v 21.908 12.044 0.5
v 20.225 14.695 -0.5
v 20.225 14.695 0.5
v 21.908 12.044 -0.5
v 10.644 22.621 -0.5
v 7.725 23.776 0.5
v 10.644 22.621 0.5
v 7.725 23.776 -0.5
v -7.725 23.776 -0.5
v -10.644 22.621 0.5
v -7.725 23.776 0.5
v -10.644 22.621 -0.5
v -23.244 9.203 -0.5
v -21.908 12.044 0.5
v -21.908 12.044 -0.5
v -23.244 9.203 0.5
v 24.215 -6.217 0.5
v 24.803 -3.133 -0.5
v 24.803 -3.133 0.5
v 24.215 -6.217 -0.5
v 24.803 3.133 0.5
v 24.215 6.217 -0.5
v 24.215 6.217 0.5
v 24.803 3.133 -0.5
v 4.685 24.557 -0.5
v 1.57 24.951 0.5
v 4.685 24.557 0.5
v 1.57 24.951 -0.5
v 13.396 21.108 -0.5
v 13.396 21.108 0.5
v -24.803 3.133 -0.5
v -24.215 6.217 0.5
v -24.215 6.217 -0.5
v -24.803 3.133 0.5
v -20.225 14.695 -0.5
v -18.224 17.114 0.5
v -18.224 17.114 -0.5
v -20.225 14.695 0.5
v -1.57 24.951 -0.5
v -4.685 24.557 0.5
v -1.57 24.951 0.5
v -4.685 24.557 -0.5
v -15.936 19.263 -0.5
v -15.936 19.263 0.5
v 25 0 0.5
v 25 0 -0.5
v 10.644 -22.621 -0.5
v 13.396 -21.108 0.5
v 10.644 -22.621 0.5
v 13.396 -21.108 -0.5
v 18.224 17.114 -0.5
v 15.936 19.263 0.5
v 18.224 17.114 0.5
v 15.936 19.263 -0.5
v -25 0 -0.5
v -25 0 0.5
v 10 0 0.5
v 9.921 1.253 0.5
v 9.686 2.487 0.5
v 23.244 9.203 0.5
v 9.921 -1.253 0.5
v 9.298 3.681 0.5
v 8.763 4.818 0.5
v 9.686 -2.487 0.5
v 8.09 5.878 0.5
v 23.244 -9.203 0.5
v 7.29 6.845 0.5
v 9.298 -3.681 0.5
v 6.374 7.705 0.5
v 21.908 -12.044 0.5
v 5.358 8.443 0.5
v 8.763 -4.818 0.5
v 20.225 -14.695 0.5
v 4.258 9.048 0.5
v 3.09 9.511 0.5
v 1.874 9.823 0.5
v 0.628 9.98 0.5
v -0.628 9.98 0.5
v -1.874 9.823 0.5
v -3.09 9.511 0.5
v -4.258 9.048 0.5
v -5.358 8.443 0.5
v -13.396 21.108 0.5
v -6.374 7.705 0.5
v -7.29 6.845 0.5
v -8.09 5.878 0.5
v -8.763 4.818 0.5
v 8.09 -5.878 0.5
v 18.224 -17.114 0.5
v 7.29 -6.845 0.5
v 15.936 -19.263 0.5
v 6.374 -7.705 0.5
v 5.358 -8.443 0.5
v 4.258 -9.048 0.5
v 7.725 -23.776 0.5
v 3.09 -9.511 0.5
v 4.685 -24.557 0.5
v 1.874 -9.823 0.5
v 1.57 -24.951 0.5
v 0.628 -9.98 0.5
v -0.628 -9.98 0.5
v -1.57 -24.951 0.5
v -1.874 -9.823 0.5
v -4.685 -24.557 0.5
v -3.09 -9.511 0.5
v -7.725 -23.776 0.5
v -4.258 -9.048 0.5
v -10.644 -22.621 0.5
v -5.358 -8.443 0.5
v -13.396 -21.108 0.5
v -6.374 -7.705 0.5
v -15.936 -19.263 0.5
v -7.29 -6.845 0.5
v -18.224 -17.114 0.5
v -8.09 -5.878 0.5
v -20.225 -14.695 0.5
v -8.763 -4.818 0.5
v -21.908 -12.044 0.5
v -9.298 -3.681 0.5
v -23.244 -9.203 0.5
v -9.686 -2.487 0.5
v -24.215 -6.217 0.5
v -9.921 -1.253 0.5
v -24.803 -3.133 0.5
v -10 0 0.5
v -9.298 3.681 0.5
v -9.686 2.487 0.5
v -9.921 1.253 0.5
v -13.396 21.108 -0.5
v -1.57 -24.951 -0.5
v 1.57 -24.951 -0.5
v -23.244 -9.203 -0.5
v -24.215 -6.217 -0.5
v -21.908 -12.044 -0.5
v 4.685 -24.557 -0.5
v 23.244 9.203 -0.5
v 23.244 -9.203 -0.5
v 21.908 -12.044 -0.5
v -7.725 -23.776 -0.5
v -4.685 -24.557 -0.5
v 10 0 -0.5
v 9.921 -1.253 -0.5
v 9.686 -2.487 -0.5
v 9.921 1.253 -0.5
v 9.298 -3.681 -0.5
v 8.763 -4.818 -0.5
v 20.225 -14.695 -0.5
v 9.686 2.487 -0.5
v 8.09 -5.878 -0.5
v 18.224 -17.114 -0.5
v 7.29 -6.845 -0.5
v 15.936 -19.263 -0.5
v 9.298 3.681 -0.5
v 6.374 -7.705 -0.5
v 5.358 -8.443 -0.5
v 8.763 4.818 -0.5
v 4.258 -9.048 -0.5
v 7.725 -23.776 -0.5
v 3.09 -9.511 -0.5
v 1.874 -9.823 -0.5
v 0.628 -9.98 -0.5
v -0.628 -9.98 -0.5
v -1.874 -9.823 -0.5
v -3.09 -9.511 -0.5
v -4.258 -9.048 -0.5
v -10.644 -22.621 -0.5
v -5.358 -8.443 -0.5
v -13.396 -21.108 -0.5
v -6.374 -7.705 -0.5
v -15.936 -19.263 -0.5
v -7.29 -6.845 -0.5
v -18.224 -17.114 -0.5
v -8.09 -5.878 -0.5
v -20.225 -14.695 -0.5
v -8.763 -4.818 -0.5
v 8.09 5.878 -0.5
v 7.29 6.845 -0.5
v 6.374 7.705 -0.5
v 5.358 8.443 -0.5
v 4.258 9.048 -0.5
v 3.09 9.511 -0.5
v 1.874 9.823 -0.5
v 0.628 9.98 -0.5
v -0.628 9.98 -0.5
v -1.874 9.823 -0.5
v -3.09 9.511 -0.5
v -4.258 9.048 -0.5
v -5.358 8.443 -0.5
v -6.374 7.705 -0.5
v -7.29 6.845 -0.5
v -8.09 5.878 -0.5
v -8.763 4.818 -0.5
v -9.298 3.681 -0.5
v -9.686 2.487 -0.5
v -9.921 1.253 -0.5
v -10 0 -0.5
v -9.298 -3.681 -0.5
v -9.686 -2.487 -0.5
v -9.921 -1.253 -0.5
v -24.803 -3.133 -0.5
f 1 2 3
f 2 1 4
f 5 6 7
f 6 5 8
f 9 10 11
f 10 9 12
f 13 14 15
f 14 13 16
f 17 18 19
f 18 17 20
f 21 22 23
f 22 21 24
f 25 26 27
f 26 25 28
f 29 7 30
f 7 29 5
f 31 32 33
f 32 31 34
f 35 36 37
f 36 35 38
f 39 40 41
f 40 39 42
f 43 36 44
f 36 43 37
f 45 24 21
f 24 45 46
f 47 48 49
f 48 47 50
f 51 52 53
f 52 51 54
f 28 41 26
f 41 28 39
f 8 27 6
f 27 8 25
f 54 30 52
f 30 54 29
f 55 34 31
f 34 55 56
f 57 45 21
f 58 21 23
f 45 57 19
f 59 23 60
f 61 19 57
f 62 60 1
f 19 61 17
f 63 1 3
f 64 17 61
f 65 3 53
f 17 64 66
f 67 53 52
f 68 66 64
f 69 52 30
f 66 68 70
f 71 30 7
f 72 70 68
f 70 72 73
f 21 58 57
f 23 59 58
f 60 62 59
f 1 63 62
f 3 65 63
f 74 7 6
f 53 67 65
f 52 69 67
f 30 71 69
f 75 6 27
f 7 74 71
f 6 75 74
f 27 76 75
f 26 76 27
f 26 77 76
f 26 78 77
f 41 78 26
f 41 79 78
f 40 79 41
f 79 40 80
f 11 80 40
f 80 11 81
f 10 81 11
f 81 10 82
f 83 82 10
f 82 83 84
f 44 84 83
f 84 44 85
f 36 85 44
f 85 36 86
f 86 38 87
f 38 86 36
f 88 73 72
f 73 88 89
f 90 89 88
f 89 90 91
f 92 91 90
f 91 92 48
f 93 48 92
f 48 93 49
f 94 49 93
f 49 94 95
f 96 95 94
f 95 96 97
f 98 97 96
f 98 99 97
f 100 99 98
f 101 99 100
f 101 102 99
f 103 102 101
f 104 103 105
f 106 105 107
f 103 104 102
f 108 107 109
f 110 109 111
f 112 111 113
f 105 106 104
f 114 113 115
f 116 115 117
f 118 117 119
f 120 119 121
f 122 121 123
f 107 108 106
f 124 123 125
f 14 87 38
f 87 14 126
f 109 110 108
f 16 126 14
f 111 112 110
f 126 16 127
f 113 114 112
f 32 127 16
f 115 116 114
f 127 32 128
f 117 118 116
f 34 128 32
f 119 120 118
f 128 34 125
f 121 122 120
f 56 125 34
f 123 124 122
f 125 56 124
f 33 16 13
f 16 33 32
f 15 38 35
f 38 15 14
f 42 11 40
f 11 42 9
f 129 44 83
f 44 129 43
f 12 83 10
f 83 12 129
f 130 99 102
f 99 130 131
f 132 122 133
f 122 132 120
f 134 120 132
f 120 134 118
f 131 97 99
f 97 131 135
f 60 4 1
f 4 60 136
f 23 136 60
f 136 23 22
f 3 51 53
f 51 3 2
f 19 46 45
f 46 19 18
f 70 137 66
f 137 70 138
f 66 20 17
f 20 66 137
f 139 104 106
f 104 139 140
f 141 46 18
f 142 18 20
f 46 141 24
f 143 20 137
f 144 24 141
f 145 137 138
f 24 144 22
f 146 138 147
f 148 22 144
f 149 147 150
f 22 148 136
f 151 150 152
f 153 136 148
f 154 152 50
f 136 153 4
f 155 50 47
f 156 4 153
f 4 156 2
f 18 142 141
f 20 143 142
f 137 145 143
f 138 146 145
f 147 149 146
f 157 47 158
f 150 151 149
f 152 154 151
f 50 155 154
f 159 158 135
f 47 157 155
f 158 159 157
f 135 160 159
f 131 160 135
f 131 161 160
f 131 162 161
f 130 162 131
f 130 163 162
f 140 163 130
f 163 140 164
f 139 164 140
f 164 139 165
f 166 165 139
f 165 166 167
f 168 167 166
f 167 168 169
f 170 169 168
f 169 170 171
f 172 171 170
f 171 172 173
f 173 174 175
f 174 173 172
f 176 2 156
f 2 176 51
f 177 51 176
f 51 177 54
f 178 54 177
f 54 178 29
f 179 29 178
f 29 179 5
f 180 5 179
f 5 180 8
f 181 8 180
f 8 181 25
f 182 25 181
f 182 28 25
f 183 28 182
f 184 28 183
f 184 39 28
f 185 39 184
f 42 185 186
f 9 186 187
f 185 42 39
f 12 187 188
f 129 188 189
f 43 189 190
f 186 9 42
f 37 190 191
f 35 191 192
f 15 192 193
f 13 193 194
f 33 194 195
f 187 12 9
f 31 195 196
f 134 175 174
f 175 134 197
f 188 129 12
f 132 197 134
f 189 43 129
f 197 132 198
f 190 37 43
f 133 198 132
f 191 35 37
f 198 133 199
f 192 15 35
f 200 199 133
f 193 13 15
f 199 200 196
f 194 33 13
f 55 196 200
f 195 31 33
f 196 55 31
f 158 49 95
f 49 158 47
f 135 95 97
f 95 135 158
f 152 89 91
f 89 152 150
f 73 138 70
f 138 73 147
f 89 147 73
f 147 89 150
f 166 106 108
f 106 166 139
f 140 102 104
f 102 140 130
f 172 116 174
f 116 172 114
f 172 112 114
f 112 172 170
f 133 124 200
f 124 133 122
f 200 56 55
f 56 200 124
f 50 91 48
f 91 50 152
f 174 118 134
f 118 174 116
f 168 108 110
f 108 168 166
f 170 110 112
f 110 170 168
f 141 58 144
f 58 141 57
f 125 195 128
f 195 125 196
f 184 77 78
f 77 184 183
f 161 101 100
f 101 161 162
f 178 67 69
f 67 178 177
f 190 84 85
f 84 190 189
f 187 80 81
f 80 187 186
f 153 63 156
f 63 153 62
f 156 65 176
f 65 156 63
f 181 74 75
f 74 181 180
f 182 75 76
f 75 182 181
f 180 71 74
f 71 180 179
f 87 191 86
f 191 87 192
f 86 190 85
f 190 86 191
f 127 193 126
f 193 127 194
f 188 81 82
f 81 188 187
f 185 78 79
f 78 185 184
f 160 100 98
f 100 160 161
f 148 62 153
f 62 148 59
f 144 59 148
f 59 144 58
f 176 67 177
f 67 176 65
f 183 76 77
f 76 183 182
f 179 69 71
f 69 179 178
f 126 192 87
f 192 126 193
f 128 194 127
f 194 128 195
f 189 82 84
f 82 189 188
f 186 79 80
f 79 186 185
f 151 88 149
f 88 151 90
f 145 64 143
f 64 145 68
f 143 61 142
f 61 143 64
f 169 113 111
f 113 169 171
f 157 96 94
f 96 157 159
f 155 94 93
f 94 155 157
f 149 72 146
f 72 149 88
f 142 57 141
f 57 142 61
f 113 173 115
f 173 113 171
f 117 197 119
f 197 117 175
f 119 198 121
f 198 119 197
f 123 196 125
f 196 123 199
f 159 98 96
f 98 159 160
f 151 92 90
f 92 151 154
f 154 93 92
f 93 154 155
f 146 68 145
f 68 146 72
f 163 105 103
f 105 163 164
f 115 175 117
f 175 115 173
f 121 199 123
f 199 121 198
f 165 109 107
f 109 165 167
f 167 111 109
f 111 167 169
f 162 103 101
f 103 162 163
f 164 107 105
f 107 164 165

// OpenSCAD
$fn = 50;


difference() {
	union() {
		translate(v = [0, 0, -0.5000000000]) {
			cylinder(h = 1, r = 25.0000000000);
		}
	}
	union() {
		translate(v = [0, 0, -100.0000000000]) {
			cylinder(h = 200, r = 10);
		}
	}
}
